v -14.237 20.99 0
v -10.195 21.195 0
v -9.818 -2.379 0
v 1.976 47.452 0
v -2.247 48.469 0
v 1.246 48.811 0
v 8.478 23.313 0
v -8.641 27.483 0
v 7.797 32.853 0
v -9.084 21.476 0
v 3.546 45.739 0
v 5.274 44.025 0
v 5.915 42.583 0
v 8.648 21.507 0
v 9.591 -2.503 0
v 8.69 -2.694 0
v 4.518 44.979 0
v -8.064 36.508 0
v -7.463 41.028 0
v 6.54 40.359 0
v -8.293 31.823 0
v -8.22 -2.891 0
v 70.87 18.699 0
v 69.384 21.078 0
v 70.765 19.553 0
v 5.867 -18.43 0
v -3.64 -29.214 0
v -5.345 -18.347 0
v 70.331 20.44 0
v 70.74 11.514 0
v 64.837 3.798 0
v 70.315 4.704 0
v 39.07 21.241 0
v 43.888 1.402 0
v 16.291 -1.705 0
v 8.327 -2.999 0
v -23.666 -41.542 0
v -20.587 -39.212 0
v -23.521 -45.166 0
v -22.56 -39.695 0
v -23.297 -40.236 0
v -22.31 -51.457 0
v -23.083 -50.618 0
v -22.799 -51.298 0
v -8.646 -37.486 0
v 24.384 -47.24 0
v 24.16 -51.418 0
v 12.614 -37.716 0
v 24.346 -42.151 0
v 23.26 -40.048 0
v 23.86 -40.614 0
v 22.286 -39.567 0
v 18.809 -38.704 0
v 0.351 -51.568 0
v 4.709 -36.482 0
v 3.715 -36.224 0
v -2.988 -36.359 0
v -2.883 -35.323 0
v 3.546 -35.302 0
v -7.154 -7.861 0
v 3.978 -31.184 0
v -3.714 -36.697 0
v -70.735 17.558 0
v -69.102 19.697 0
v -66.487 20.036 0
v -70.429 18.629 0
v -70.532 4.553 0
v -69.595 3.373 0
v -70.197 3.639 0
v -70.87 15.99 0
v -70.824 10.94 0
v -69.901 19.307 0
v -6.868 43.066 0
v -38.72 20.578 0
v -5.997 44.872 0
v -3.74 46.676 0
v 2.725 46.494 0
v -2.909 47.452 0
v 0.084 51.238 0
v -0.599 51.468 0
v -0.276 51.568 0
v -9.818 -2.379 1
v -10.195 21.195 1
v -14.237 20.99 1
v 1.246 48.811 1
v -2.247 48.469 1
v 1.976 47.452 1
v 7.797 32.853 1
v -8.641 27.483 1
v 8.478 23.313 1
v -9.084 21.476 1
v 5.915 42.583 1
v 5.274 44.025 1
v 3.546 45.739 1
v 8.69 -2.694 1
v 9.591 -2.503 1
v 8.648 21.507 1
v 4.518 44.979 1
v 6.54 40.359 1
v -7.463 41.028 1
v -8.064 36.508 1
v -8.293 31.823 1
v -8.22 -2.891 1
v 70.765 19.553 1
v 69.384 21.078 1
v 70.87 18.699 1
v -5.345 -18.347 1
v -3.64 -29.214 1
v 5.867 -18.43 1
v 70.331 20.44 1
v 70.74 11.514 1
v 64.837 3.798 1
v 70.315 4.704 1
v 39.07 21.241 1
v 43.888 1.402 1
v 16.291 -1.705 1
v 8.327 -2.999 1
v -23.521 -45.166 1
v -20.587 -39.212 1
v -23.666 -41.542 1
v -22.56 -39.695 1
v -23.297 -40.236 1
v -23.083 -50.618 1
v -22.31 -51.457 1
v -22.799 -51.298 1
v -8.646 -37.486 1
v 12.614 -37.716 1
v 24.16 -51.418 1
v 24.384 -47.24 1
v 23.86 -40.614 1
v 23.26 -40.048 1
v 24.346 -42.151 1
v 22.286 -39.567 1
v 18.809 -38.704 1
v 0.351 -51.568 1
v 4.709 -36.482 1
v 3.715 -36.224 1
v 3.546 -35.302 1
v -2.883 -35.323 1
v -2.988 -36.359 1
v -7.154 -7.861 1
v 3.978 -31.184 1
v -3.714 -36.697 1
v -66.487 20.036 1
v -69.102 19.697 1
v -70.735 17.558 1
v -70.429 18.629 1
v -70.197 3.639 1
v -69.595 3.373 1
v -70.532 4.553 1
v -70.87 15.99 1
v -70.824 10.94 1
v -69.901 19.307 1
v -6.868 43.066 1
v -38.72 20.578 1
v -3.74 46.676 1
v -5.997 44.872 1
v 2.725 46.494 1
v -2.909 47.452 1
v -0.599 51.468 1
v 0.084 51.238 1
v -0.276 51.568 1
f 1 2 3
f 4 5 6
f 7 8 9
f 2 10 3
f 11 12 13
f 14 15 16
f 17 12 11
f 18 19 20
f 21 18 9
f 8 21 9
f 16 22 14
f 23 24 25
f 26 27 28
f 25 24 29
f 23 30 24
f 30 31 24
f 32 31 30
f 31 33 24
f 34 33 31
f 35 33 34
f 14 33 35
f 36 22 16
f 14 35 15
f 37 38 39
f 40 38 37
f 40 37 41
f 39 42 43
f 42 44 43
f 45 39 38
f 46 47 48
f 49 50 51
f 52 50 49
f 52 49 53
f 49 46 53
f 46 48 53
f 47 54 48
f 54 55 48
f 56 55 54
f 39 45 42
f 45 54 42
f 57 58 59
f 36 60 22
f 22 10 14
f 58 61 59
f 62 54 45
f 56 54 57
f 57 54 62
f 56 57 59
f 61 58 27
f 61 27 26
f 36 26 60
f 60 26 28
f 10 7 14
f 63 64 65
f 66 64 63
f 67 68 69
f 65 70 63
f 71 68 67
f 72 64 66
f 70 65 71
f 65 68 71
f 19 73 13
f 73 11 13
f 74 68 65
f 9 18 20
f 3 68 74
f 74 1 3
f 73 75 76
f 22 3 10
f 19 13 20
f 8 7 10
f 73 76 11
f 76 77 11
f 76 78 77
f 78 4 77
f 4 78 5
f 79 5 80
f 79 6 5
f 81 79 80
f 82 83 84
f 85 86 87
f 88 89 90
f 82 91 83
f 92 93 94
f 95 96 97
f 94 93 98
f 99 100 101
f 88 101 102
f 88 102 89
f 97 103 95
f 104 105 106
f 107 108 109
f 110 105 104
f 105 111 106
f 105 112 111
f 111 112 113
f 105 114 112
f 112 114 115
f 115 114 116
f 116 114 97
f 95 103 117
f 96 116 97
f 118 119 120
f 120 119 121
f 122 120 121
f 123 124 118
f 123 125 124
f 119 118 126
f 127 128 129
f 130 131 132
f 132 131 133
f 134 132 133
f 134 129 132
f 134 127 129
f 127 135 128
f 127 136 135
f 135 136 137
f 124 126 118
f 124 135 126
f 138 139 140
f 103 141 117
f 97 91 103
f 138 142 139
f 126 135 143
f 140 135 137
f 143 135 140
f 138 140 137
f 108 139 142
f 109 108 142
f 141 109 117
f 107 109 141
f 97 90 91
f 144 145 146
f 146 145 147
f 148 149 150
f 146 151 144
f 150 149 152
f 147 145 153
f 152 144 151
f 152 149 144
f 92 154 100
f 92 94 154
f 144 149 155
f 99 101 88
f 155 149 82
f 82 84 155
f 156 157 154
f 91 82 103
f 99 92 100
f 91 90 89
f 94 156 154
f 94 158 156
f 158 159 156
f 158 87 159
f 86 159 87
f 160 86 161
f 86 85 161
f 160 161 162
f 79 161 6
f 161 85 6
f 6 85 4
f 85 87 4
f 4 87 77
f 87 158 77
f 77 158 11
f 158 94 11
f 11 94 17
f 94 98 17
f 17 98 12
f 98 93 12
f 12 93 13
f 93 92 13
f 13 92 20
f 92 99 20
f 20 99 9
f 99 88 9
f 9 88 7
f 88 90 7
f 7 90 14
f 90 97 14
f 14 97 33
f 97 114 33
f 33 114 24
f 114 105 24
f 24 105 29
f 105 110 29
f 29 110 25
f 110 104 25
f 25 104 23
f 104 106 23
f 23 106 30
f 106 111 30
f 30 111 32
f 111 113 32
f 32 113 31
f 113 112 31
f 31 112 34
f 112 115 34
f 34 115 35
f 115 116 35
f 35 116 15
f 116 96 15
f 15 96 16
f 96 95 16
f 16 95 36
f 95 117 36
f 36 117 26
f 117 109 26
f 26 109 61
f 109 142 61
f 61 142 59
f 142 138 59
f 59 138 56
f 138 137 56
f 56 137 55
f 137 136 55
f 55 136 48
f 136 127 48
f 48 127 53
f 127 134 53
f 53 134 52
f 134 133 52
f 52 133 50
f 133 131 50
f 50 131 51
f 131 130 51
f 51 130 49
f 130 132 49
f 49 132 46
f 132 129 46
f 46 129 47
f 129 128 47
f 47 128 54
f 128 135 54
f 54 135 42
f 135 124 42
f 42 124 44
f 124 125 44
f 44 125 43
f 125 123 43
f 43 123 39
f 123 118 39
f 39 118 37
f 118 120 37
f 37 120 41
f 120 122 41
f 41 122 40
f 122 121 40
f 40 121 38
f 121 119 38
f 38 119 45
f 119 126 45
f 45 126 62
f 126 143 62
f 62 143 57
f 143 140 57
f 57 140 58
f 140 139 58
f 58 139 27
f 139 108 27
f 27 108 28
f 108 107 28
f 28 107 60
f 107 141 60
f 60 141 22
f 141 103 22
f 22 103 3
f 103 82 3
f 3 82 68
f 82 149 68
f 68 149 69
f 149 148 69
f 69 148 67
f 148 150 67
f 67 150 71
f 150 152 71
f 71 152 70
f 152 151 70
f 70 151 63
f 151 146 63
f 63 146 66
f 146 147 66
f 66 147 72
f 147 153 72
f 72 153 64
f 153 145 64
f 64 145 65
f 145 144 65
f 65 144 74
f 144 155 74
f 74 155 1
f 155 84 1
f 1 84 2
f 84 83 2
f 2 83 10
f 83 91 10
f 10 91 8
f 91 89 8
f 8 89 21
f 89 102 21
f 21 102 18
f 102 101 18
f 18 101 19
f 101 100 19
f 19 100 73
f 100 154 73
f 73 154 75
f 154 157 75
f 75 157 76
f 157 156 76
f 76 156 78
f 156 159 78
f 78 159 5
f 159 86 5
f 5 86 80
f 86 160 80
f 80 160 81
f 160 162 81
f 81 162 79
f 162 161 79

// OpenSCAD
// Module names are of the form poly_<inkscape-path-id>().
// As a result you can associate a polygon in this OpenSCAD program with the
//  corresponding SVG element in the Inkscape document by looking for 
//  the XML element with the attribute id="inkscape-path-id".

// Paths have their own variables so they can be imported and used 
//  in polygon(points) structures in other programs.
// The NN_points is the list of all polygon XY vertices. 
// There may be an NN_paths variable as well. If it exists then it 
//  defines the nested paths. Both must be used in the 
//  polygon(points, paths) variant of the command.

profile_scale = 75.4/90; //made in inkscape in mm

// helper functions to determine the X,Y dimensions of the profiles
function min_x(shape_points) = min([ for (x = shape_points) min(x[0])]);
function max_x(shape_points) = max([ for (x = shape_points) max(x[0])]);
function min_y(shape_points) = min([ for (x = shape_points) min(x[1])]);
function max_y(shape_points) = max([ for (x = shape_points) max(x[1])]);

height = 1;
width = 1.0;


path43_0_points = [[-26.629606,61.421098],[-27.213521,61.230427],[-27.552197,60.419047],[-28.075706,53.912258],[-28.247900,49.586068],[-27.808366,48.027718],[-26.928294,47.380912],[-24.572828,46.804545],[-10.319756,44.744858],[-4.432776,43.802708],[-3.566889,43.399267],[-3.441116,42.162598],[-4.344528,34.870551],[-6.380392,21.899867],[-8.539401,9.382743],[-9.812246,3.451378],[-11.719276,2.839748],[-40.879125,0.033738],[-83.071368,-4.026202],[-83.789902,-4.343137],[-84.189477,-5.434209],[-84.538562,-13.058982],[-84.592259,-19.086274],[-84.431588,-20.958144],[-84.066172,-22.236012],[-83.436213,-23.045265],[-82.481912,-23.511289],[-79.361088,-23.915202],[-46.216919,-24.563232],[-16.993703,-25.054522],[-12.169437,-25.298990],[-10.842566,-25.634342],[-10.314446,-32.804422],[-9.899274,-37.984553],[-9.625891,-43.576764],[-8.907692,-48.971999],[-8.198472,-51.405421],[-7.158072,-53.561202],[-4.464714,-55.714553],[-3.472535,-56.640756],[-2.681756,-57.854532],[-0.715331,-61.433852],[-0.329454,-61.553256],[0.100661,-61.158837],[1.486999,-58.261942],[2.358191,-56.640495],[3.252761,-55.496898],[4.232329,-54.596152],[5.393393,-53.688587],[6.295734,-52.549747],[7.060000,-50.828479],[7.806839,-48.173632],[9.307086,-39.214859],[10.119959,-27.827302],[10.321989,-25.672012],[46.634829,-25.354392],[82.819619,-25.159352],[83.949719,-24.398422],[84.467511,-23.339527],[84.592259,-22.319392],[84.438305,-13.743449],[83.930749,-5.614912],[77.391229,-4.532999],[52.386499,-1.673602],[19.445869,2.034568],[11.448739,2.988198],[10.372223,3.216198],[9.939049,3.579288],[7.002529,21.998318],[4.748704,37.222428],[4.232329,42.137218],[4.434424,43.237613],[5.621389,43.546758],[15.056919,45.019298],[22.451172,46.198498],[26.601679,47.228857],[27.764375,47.803089],[28.480751,48.477952],[29.060699,50.313358],[29.105166,56.387530],[28.838579,61.374868],[0.418789,61.553256],[-26.629606,61.421068],[-26.629606,61.421098]];

module poly_path43(h, w, res=4)  {
  scale([profile_scale, -profile_scale, 1])
  union()  {
    linear_extrude(height=h)
      polygon(path43_0_points);
  }
}

// The shapes
poly_path43(height, width);
